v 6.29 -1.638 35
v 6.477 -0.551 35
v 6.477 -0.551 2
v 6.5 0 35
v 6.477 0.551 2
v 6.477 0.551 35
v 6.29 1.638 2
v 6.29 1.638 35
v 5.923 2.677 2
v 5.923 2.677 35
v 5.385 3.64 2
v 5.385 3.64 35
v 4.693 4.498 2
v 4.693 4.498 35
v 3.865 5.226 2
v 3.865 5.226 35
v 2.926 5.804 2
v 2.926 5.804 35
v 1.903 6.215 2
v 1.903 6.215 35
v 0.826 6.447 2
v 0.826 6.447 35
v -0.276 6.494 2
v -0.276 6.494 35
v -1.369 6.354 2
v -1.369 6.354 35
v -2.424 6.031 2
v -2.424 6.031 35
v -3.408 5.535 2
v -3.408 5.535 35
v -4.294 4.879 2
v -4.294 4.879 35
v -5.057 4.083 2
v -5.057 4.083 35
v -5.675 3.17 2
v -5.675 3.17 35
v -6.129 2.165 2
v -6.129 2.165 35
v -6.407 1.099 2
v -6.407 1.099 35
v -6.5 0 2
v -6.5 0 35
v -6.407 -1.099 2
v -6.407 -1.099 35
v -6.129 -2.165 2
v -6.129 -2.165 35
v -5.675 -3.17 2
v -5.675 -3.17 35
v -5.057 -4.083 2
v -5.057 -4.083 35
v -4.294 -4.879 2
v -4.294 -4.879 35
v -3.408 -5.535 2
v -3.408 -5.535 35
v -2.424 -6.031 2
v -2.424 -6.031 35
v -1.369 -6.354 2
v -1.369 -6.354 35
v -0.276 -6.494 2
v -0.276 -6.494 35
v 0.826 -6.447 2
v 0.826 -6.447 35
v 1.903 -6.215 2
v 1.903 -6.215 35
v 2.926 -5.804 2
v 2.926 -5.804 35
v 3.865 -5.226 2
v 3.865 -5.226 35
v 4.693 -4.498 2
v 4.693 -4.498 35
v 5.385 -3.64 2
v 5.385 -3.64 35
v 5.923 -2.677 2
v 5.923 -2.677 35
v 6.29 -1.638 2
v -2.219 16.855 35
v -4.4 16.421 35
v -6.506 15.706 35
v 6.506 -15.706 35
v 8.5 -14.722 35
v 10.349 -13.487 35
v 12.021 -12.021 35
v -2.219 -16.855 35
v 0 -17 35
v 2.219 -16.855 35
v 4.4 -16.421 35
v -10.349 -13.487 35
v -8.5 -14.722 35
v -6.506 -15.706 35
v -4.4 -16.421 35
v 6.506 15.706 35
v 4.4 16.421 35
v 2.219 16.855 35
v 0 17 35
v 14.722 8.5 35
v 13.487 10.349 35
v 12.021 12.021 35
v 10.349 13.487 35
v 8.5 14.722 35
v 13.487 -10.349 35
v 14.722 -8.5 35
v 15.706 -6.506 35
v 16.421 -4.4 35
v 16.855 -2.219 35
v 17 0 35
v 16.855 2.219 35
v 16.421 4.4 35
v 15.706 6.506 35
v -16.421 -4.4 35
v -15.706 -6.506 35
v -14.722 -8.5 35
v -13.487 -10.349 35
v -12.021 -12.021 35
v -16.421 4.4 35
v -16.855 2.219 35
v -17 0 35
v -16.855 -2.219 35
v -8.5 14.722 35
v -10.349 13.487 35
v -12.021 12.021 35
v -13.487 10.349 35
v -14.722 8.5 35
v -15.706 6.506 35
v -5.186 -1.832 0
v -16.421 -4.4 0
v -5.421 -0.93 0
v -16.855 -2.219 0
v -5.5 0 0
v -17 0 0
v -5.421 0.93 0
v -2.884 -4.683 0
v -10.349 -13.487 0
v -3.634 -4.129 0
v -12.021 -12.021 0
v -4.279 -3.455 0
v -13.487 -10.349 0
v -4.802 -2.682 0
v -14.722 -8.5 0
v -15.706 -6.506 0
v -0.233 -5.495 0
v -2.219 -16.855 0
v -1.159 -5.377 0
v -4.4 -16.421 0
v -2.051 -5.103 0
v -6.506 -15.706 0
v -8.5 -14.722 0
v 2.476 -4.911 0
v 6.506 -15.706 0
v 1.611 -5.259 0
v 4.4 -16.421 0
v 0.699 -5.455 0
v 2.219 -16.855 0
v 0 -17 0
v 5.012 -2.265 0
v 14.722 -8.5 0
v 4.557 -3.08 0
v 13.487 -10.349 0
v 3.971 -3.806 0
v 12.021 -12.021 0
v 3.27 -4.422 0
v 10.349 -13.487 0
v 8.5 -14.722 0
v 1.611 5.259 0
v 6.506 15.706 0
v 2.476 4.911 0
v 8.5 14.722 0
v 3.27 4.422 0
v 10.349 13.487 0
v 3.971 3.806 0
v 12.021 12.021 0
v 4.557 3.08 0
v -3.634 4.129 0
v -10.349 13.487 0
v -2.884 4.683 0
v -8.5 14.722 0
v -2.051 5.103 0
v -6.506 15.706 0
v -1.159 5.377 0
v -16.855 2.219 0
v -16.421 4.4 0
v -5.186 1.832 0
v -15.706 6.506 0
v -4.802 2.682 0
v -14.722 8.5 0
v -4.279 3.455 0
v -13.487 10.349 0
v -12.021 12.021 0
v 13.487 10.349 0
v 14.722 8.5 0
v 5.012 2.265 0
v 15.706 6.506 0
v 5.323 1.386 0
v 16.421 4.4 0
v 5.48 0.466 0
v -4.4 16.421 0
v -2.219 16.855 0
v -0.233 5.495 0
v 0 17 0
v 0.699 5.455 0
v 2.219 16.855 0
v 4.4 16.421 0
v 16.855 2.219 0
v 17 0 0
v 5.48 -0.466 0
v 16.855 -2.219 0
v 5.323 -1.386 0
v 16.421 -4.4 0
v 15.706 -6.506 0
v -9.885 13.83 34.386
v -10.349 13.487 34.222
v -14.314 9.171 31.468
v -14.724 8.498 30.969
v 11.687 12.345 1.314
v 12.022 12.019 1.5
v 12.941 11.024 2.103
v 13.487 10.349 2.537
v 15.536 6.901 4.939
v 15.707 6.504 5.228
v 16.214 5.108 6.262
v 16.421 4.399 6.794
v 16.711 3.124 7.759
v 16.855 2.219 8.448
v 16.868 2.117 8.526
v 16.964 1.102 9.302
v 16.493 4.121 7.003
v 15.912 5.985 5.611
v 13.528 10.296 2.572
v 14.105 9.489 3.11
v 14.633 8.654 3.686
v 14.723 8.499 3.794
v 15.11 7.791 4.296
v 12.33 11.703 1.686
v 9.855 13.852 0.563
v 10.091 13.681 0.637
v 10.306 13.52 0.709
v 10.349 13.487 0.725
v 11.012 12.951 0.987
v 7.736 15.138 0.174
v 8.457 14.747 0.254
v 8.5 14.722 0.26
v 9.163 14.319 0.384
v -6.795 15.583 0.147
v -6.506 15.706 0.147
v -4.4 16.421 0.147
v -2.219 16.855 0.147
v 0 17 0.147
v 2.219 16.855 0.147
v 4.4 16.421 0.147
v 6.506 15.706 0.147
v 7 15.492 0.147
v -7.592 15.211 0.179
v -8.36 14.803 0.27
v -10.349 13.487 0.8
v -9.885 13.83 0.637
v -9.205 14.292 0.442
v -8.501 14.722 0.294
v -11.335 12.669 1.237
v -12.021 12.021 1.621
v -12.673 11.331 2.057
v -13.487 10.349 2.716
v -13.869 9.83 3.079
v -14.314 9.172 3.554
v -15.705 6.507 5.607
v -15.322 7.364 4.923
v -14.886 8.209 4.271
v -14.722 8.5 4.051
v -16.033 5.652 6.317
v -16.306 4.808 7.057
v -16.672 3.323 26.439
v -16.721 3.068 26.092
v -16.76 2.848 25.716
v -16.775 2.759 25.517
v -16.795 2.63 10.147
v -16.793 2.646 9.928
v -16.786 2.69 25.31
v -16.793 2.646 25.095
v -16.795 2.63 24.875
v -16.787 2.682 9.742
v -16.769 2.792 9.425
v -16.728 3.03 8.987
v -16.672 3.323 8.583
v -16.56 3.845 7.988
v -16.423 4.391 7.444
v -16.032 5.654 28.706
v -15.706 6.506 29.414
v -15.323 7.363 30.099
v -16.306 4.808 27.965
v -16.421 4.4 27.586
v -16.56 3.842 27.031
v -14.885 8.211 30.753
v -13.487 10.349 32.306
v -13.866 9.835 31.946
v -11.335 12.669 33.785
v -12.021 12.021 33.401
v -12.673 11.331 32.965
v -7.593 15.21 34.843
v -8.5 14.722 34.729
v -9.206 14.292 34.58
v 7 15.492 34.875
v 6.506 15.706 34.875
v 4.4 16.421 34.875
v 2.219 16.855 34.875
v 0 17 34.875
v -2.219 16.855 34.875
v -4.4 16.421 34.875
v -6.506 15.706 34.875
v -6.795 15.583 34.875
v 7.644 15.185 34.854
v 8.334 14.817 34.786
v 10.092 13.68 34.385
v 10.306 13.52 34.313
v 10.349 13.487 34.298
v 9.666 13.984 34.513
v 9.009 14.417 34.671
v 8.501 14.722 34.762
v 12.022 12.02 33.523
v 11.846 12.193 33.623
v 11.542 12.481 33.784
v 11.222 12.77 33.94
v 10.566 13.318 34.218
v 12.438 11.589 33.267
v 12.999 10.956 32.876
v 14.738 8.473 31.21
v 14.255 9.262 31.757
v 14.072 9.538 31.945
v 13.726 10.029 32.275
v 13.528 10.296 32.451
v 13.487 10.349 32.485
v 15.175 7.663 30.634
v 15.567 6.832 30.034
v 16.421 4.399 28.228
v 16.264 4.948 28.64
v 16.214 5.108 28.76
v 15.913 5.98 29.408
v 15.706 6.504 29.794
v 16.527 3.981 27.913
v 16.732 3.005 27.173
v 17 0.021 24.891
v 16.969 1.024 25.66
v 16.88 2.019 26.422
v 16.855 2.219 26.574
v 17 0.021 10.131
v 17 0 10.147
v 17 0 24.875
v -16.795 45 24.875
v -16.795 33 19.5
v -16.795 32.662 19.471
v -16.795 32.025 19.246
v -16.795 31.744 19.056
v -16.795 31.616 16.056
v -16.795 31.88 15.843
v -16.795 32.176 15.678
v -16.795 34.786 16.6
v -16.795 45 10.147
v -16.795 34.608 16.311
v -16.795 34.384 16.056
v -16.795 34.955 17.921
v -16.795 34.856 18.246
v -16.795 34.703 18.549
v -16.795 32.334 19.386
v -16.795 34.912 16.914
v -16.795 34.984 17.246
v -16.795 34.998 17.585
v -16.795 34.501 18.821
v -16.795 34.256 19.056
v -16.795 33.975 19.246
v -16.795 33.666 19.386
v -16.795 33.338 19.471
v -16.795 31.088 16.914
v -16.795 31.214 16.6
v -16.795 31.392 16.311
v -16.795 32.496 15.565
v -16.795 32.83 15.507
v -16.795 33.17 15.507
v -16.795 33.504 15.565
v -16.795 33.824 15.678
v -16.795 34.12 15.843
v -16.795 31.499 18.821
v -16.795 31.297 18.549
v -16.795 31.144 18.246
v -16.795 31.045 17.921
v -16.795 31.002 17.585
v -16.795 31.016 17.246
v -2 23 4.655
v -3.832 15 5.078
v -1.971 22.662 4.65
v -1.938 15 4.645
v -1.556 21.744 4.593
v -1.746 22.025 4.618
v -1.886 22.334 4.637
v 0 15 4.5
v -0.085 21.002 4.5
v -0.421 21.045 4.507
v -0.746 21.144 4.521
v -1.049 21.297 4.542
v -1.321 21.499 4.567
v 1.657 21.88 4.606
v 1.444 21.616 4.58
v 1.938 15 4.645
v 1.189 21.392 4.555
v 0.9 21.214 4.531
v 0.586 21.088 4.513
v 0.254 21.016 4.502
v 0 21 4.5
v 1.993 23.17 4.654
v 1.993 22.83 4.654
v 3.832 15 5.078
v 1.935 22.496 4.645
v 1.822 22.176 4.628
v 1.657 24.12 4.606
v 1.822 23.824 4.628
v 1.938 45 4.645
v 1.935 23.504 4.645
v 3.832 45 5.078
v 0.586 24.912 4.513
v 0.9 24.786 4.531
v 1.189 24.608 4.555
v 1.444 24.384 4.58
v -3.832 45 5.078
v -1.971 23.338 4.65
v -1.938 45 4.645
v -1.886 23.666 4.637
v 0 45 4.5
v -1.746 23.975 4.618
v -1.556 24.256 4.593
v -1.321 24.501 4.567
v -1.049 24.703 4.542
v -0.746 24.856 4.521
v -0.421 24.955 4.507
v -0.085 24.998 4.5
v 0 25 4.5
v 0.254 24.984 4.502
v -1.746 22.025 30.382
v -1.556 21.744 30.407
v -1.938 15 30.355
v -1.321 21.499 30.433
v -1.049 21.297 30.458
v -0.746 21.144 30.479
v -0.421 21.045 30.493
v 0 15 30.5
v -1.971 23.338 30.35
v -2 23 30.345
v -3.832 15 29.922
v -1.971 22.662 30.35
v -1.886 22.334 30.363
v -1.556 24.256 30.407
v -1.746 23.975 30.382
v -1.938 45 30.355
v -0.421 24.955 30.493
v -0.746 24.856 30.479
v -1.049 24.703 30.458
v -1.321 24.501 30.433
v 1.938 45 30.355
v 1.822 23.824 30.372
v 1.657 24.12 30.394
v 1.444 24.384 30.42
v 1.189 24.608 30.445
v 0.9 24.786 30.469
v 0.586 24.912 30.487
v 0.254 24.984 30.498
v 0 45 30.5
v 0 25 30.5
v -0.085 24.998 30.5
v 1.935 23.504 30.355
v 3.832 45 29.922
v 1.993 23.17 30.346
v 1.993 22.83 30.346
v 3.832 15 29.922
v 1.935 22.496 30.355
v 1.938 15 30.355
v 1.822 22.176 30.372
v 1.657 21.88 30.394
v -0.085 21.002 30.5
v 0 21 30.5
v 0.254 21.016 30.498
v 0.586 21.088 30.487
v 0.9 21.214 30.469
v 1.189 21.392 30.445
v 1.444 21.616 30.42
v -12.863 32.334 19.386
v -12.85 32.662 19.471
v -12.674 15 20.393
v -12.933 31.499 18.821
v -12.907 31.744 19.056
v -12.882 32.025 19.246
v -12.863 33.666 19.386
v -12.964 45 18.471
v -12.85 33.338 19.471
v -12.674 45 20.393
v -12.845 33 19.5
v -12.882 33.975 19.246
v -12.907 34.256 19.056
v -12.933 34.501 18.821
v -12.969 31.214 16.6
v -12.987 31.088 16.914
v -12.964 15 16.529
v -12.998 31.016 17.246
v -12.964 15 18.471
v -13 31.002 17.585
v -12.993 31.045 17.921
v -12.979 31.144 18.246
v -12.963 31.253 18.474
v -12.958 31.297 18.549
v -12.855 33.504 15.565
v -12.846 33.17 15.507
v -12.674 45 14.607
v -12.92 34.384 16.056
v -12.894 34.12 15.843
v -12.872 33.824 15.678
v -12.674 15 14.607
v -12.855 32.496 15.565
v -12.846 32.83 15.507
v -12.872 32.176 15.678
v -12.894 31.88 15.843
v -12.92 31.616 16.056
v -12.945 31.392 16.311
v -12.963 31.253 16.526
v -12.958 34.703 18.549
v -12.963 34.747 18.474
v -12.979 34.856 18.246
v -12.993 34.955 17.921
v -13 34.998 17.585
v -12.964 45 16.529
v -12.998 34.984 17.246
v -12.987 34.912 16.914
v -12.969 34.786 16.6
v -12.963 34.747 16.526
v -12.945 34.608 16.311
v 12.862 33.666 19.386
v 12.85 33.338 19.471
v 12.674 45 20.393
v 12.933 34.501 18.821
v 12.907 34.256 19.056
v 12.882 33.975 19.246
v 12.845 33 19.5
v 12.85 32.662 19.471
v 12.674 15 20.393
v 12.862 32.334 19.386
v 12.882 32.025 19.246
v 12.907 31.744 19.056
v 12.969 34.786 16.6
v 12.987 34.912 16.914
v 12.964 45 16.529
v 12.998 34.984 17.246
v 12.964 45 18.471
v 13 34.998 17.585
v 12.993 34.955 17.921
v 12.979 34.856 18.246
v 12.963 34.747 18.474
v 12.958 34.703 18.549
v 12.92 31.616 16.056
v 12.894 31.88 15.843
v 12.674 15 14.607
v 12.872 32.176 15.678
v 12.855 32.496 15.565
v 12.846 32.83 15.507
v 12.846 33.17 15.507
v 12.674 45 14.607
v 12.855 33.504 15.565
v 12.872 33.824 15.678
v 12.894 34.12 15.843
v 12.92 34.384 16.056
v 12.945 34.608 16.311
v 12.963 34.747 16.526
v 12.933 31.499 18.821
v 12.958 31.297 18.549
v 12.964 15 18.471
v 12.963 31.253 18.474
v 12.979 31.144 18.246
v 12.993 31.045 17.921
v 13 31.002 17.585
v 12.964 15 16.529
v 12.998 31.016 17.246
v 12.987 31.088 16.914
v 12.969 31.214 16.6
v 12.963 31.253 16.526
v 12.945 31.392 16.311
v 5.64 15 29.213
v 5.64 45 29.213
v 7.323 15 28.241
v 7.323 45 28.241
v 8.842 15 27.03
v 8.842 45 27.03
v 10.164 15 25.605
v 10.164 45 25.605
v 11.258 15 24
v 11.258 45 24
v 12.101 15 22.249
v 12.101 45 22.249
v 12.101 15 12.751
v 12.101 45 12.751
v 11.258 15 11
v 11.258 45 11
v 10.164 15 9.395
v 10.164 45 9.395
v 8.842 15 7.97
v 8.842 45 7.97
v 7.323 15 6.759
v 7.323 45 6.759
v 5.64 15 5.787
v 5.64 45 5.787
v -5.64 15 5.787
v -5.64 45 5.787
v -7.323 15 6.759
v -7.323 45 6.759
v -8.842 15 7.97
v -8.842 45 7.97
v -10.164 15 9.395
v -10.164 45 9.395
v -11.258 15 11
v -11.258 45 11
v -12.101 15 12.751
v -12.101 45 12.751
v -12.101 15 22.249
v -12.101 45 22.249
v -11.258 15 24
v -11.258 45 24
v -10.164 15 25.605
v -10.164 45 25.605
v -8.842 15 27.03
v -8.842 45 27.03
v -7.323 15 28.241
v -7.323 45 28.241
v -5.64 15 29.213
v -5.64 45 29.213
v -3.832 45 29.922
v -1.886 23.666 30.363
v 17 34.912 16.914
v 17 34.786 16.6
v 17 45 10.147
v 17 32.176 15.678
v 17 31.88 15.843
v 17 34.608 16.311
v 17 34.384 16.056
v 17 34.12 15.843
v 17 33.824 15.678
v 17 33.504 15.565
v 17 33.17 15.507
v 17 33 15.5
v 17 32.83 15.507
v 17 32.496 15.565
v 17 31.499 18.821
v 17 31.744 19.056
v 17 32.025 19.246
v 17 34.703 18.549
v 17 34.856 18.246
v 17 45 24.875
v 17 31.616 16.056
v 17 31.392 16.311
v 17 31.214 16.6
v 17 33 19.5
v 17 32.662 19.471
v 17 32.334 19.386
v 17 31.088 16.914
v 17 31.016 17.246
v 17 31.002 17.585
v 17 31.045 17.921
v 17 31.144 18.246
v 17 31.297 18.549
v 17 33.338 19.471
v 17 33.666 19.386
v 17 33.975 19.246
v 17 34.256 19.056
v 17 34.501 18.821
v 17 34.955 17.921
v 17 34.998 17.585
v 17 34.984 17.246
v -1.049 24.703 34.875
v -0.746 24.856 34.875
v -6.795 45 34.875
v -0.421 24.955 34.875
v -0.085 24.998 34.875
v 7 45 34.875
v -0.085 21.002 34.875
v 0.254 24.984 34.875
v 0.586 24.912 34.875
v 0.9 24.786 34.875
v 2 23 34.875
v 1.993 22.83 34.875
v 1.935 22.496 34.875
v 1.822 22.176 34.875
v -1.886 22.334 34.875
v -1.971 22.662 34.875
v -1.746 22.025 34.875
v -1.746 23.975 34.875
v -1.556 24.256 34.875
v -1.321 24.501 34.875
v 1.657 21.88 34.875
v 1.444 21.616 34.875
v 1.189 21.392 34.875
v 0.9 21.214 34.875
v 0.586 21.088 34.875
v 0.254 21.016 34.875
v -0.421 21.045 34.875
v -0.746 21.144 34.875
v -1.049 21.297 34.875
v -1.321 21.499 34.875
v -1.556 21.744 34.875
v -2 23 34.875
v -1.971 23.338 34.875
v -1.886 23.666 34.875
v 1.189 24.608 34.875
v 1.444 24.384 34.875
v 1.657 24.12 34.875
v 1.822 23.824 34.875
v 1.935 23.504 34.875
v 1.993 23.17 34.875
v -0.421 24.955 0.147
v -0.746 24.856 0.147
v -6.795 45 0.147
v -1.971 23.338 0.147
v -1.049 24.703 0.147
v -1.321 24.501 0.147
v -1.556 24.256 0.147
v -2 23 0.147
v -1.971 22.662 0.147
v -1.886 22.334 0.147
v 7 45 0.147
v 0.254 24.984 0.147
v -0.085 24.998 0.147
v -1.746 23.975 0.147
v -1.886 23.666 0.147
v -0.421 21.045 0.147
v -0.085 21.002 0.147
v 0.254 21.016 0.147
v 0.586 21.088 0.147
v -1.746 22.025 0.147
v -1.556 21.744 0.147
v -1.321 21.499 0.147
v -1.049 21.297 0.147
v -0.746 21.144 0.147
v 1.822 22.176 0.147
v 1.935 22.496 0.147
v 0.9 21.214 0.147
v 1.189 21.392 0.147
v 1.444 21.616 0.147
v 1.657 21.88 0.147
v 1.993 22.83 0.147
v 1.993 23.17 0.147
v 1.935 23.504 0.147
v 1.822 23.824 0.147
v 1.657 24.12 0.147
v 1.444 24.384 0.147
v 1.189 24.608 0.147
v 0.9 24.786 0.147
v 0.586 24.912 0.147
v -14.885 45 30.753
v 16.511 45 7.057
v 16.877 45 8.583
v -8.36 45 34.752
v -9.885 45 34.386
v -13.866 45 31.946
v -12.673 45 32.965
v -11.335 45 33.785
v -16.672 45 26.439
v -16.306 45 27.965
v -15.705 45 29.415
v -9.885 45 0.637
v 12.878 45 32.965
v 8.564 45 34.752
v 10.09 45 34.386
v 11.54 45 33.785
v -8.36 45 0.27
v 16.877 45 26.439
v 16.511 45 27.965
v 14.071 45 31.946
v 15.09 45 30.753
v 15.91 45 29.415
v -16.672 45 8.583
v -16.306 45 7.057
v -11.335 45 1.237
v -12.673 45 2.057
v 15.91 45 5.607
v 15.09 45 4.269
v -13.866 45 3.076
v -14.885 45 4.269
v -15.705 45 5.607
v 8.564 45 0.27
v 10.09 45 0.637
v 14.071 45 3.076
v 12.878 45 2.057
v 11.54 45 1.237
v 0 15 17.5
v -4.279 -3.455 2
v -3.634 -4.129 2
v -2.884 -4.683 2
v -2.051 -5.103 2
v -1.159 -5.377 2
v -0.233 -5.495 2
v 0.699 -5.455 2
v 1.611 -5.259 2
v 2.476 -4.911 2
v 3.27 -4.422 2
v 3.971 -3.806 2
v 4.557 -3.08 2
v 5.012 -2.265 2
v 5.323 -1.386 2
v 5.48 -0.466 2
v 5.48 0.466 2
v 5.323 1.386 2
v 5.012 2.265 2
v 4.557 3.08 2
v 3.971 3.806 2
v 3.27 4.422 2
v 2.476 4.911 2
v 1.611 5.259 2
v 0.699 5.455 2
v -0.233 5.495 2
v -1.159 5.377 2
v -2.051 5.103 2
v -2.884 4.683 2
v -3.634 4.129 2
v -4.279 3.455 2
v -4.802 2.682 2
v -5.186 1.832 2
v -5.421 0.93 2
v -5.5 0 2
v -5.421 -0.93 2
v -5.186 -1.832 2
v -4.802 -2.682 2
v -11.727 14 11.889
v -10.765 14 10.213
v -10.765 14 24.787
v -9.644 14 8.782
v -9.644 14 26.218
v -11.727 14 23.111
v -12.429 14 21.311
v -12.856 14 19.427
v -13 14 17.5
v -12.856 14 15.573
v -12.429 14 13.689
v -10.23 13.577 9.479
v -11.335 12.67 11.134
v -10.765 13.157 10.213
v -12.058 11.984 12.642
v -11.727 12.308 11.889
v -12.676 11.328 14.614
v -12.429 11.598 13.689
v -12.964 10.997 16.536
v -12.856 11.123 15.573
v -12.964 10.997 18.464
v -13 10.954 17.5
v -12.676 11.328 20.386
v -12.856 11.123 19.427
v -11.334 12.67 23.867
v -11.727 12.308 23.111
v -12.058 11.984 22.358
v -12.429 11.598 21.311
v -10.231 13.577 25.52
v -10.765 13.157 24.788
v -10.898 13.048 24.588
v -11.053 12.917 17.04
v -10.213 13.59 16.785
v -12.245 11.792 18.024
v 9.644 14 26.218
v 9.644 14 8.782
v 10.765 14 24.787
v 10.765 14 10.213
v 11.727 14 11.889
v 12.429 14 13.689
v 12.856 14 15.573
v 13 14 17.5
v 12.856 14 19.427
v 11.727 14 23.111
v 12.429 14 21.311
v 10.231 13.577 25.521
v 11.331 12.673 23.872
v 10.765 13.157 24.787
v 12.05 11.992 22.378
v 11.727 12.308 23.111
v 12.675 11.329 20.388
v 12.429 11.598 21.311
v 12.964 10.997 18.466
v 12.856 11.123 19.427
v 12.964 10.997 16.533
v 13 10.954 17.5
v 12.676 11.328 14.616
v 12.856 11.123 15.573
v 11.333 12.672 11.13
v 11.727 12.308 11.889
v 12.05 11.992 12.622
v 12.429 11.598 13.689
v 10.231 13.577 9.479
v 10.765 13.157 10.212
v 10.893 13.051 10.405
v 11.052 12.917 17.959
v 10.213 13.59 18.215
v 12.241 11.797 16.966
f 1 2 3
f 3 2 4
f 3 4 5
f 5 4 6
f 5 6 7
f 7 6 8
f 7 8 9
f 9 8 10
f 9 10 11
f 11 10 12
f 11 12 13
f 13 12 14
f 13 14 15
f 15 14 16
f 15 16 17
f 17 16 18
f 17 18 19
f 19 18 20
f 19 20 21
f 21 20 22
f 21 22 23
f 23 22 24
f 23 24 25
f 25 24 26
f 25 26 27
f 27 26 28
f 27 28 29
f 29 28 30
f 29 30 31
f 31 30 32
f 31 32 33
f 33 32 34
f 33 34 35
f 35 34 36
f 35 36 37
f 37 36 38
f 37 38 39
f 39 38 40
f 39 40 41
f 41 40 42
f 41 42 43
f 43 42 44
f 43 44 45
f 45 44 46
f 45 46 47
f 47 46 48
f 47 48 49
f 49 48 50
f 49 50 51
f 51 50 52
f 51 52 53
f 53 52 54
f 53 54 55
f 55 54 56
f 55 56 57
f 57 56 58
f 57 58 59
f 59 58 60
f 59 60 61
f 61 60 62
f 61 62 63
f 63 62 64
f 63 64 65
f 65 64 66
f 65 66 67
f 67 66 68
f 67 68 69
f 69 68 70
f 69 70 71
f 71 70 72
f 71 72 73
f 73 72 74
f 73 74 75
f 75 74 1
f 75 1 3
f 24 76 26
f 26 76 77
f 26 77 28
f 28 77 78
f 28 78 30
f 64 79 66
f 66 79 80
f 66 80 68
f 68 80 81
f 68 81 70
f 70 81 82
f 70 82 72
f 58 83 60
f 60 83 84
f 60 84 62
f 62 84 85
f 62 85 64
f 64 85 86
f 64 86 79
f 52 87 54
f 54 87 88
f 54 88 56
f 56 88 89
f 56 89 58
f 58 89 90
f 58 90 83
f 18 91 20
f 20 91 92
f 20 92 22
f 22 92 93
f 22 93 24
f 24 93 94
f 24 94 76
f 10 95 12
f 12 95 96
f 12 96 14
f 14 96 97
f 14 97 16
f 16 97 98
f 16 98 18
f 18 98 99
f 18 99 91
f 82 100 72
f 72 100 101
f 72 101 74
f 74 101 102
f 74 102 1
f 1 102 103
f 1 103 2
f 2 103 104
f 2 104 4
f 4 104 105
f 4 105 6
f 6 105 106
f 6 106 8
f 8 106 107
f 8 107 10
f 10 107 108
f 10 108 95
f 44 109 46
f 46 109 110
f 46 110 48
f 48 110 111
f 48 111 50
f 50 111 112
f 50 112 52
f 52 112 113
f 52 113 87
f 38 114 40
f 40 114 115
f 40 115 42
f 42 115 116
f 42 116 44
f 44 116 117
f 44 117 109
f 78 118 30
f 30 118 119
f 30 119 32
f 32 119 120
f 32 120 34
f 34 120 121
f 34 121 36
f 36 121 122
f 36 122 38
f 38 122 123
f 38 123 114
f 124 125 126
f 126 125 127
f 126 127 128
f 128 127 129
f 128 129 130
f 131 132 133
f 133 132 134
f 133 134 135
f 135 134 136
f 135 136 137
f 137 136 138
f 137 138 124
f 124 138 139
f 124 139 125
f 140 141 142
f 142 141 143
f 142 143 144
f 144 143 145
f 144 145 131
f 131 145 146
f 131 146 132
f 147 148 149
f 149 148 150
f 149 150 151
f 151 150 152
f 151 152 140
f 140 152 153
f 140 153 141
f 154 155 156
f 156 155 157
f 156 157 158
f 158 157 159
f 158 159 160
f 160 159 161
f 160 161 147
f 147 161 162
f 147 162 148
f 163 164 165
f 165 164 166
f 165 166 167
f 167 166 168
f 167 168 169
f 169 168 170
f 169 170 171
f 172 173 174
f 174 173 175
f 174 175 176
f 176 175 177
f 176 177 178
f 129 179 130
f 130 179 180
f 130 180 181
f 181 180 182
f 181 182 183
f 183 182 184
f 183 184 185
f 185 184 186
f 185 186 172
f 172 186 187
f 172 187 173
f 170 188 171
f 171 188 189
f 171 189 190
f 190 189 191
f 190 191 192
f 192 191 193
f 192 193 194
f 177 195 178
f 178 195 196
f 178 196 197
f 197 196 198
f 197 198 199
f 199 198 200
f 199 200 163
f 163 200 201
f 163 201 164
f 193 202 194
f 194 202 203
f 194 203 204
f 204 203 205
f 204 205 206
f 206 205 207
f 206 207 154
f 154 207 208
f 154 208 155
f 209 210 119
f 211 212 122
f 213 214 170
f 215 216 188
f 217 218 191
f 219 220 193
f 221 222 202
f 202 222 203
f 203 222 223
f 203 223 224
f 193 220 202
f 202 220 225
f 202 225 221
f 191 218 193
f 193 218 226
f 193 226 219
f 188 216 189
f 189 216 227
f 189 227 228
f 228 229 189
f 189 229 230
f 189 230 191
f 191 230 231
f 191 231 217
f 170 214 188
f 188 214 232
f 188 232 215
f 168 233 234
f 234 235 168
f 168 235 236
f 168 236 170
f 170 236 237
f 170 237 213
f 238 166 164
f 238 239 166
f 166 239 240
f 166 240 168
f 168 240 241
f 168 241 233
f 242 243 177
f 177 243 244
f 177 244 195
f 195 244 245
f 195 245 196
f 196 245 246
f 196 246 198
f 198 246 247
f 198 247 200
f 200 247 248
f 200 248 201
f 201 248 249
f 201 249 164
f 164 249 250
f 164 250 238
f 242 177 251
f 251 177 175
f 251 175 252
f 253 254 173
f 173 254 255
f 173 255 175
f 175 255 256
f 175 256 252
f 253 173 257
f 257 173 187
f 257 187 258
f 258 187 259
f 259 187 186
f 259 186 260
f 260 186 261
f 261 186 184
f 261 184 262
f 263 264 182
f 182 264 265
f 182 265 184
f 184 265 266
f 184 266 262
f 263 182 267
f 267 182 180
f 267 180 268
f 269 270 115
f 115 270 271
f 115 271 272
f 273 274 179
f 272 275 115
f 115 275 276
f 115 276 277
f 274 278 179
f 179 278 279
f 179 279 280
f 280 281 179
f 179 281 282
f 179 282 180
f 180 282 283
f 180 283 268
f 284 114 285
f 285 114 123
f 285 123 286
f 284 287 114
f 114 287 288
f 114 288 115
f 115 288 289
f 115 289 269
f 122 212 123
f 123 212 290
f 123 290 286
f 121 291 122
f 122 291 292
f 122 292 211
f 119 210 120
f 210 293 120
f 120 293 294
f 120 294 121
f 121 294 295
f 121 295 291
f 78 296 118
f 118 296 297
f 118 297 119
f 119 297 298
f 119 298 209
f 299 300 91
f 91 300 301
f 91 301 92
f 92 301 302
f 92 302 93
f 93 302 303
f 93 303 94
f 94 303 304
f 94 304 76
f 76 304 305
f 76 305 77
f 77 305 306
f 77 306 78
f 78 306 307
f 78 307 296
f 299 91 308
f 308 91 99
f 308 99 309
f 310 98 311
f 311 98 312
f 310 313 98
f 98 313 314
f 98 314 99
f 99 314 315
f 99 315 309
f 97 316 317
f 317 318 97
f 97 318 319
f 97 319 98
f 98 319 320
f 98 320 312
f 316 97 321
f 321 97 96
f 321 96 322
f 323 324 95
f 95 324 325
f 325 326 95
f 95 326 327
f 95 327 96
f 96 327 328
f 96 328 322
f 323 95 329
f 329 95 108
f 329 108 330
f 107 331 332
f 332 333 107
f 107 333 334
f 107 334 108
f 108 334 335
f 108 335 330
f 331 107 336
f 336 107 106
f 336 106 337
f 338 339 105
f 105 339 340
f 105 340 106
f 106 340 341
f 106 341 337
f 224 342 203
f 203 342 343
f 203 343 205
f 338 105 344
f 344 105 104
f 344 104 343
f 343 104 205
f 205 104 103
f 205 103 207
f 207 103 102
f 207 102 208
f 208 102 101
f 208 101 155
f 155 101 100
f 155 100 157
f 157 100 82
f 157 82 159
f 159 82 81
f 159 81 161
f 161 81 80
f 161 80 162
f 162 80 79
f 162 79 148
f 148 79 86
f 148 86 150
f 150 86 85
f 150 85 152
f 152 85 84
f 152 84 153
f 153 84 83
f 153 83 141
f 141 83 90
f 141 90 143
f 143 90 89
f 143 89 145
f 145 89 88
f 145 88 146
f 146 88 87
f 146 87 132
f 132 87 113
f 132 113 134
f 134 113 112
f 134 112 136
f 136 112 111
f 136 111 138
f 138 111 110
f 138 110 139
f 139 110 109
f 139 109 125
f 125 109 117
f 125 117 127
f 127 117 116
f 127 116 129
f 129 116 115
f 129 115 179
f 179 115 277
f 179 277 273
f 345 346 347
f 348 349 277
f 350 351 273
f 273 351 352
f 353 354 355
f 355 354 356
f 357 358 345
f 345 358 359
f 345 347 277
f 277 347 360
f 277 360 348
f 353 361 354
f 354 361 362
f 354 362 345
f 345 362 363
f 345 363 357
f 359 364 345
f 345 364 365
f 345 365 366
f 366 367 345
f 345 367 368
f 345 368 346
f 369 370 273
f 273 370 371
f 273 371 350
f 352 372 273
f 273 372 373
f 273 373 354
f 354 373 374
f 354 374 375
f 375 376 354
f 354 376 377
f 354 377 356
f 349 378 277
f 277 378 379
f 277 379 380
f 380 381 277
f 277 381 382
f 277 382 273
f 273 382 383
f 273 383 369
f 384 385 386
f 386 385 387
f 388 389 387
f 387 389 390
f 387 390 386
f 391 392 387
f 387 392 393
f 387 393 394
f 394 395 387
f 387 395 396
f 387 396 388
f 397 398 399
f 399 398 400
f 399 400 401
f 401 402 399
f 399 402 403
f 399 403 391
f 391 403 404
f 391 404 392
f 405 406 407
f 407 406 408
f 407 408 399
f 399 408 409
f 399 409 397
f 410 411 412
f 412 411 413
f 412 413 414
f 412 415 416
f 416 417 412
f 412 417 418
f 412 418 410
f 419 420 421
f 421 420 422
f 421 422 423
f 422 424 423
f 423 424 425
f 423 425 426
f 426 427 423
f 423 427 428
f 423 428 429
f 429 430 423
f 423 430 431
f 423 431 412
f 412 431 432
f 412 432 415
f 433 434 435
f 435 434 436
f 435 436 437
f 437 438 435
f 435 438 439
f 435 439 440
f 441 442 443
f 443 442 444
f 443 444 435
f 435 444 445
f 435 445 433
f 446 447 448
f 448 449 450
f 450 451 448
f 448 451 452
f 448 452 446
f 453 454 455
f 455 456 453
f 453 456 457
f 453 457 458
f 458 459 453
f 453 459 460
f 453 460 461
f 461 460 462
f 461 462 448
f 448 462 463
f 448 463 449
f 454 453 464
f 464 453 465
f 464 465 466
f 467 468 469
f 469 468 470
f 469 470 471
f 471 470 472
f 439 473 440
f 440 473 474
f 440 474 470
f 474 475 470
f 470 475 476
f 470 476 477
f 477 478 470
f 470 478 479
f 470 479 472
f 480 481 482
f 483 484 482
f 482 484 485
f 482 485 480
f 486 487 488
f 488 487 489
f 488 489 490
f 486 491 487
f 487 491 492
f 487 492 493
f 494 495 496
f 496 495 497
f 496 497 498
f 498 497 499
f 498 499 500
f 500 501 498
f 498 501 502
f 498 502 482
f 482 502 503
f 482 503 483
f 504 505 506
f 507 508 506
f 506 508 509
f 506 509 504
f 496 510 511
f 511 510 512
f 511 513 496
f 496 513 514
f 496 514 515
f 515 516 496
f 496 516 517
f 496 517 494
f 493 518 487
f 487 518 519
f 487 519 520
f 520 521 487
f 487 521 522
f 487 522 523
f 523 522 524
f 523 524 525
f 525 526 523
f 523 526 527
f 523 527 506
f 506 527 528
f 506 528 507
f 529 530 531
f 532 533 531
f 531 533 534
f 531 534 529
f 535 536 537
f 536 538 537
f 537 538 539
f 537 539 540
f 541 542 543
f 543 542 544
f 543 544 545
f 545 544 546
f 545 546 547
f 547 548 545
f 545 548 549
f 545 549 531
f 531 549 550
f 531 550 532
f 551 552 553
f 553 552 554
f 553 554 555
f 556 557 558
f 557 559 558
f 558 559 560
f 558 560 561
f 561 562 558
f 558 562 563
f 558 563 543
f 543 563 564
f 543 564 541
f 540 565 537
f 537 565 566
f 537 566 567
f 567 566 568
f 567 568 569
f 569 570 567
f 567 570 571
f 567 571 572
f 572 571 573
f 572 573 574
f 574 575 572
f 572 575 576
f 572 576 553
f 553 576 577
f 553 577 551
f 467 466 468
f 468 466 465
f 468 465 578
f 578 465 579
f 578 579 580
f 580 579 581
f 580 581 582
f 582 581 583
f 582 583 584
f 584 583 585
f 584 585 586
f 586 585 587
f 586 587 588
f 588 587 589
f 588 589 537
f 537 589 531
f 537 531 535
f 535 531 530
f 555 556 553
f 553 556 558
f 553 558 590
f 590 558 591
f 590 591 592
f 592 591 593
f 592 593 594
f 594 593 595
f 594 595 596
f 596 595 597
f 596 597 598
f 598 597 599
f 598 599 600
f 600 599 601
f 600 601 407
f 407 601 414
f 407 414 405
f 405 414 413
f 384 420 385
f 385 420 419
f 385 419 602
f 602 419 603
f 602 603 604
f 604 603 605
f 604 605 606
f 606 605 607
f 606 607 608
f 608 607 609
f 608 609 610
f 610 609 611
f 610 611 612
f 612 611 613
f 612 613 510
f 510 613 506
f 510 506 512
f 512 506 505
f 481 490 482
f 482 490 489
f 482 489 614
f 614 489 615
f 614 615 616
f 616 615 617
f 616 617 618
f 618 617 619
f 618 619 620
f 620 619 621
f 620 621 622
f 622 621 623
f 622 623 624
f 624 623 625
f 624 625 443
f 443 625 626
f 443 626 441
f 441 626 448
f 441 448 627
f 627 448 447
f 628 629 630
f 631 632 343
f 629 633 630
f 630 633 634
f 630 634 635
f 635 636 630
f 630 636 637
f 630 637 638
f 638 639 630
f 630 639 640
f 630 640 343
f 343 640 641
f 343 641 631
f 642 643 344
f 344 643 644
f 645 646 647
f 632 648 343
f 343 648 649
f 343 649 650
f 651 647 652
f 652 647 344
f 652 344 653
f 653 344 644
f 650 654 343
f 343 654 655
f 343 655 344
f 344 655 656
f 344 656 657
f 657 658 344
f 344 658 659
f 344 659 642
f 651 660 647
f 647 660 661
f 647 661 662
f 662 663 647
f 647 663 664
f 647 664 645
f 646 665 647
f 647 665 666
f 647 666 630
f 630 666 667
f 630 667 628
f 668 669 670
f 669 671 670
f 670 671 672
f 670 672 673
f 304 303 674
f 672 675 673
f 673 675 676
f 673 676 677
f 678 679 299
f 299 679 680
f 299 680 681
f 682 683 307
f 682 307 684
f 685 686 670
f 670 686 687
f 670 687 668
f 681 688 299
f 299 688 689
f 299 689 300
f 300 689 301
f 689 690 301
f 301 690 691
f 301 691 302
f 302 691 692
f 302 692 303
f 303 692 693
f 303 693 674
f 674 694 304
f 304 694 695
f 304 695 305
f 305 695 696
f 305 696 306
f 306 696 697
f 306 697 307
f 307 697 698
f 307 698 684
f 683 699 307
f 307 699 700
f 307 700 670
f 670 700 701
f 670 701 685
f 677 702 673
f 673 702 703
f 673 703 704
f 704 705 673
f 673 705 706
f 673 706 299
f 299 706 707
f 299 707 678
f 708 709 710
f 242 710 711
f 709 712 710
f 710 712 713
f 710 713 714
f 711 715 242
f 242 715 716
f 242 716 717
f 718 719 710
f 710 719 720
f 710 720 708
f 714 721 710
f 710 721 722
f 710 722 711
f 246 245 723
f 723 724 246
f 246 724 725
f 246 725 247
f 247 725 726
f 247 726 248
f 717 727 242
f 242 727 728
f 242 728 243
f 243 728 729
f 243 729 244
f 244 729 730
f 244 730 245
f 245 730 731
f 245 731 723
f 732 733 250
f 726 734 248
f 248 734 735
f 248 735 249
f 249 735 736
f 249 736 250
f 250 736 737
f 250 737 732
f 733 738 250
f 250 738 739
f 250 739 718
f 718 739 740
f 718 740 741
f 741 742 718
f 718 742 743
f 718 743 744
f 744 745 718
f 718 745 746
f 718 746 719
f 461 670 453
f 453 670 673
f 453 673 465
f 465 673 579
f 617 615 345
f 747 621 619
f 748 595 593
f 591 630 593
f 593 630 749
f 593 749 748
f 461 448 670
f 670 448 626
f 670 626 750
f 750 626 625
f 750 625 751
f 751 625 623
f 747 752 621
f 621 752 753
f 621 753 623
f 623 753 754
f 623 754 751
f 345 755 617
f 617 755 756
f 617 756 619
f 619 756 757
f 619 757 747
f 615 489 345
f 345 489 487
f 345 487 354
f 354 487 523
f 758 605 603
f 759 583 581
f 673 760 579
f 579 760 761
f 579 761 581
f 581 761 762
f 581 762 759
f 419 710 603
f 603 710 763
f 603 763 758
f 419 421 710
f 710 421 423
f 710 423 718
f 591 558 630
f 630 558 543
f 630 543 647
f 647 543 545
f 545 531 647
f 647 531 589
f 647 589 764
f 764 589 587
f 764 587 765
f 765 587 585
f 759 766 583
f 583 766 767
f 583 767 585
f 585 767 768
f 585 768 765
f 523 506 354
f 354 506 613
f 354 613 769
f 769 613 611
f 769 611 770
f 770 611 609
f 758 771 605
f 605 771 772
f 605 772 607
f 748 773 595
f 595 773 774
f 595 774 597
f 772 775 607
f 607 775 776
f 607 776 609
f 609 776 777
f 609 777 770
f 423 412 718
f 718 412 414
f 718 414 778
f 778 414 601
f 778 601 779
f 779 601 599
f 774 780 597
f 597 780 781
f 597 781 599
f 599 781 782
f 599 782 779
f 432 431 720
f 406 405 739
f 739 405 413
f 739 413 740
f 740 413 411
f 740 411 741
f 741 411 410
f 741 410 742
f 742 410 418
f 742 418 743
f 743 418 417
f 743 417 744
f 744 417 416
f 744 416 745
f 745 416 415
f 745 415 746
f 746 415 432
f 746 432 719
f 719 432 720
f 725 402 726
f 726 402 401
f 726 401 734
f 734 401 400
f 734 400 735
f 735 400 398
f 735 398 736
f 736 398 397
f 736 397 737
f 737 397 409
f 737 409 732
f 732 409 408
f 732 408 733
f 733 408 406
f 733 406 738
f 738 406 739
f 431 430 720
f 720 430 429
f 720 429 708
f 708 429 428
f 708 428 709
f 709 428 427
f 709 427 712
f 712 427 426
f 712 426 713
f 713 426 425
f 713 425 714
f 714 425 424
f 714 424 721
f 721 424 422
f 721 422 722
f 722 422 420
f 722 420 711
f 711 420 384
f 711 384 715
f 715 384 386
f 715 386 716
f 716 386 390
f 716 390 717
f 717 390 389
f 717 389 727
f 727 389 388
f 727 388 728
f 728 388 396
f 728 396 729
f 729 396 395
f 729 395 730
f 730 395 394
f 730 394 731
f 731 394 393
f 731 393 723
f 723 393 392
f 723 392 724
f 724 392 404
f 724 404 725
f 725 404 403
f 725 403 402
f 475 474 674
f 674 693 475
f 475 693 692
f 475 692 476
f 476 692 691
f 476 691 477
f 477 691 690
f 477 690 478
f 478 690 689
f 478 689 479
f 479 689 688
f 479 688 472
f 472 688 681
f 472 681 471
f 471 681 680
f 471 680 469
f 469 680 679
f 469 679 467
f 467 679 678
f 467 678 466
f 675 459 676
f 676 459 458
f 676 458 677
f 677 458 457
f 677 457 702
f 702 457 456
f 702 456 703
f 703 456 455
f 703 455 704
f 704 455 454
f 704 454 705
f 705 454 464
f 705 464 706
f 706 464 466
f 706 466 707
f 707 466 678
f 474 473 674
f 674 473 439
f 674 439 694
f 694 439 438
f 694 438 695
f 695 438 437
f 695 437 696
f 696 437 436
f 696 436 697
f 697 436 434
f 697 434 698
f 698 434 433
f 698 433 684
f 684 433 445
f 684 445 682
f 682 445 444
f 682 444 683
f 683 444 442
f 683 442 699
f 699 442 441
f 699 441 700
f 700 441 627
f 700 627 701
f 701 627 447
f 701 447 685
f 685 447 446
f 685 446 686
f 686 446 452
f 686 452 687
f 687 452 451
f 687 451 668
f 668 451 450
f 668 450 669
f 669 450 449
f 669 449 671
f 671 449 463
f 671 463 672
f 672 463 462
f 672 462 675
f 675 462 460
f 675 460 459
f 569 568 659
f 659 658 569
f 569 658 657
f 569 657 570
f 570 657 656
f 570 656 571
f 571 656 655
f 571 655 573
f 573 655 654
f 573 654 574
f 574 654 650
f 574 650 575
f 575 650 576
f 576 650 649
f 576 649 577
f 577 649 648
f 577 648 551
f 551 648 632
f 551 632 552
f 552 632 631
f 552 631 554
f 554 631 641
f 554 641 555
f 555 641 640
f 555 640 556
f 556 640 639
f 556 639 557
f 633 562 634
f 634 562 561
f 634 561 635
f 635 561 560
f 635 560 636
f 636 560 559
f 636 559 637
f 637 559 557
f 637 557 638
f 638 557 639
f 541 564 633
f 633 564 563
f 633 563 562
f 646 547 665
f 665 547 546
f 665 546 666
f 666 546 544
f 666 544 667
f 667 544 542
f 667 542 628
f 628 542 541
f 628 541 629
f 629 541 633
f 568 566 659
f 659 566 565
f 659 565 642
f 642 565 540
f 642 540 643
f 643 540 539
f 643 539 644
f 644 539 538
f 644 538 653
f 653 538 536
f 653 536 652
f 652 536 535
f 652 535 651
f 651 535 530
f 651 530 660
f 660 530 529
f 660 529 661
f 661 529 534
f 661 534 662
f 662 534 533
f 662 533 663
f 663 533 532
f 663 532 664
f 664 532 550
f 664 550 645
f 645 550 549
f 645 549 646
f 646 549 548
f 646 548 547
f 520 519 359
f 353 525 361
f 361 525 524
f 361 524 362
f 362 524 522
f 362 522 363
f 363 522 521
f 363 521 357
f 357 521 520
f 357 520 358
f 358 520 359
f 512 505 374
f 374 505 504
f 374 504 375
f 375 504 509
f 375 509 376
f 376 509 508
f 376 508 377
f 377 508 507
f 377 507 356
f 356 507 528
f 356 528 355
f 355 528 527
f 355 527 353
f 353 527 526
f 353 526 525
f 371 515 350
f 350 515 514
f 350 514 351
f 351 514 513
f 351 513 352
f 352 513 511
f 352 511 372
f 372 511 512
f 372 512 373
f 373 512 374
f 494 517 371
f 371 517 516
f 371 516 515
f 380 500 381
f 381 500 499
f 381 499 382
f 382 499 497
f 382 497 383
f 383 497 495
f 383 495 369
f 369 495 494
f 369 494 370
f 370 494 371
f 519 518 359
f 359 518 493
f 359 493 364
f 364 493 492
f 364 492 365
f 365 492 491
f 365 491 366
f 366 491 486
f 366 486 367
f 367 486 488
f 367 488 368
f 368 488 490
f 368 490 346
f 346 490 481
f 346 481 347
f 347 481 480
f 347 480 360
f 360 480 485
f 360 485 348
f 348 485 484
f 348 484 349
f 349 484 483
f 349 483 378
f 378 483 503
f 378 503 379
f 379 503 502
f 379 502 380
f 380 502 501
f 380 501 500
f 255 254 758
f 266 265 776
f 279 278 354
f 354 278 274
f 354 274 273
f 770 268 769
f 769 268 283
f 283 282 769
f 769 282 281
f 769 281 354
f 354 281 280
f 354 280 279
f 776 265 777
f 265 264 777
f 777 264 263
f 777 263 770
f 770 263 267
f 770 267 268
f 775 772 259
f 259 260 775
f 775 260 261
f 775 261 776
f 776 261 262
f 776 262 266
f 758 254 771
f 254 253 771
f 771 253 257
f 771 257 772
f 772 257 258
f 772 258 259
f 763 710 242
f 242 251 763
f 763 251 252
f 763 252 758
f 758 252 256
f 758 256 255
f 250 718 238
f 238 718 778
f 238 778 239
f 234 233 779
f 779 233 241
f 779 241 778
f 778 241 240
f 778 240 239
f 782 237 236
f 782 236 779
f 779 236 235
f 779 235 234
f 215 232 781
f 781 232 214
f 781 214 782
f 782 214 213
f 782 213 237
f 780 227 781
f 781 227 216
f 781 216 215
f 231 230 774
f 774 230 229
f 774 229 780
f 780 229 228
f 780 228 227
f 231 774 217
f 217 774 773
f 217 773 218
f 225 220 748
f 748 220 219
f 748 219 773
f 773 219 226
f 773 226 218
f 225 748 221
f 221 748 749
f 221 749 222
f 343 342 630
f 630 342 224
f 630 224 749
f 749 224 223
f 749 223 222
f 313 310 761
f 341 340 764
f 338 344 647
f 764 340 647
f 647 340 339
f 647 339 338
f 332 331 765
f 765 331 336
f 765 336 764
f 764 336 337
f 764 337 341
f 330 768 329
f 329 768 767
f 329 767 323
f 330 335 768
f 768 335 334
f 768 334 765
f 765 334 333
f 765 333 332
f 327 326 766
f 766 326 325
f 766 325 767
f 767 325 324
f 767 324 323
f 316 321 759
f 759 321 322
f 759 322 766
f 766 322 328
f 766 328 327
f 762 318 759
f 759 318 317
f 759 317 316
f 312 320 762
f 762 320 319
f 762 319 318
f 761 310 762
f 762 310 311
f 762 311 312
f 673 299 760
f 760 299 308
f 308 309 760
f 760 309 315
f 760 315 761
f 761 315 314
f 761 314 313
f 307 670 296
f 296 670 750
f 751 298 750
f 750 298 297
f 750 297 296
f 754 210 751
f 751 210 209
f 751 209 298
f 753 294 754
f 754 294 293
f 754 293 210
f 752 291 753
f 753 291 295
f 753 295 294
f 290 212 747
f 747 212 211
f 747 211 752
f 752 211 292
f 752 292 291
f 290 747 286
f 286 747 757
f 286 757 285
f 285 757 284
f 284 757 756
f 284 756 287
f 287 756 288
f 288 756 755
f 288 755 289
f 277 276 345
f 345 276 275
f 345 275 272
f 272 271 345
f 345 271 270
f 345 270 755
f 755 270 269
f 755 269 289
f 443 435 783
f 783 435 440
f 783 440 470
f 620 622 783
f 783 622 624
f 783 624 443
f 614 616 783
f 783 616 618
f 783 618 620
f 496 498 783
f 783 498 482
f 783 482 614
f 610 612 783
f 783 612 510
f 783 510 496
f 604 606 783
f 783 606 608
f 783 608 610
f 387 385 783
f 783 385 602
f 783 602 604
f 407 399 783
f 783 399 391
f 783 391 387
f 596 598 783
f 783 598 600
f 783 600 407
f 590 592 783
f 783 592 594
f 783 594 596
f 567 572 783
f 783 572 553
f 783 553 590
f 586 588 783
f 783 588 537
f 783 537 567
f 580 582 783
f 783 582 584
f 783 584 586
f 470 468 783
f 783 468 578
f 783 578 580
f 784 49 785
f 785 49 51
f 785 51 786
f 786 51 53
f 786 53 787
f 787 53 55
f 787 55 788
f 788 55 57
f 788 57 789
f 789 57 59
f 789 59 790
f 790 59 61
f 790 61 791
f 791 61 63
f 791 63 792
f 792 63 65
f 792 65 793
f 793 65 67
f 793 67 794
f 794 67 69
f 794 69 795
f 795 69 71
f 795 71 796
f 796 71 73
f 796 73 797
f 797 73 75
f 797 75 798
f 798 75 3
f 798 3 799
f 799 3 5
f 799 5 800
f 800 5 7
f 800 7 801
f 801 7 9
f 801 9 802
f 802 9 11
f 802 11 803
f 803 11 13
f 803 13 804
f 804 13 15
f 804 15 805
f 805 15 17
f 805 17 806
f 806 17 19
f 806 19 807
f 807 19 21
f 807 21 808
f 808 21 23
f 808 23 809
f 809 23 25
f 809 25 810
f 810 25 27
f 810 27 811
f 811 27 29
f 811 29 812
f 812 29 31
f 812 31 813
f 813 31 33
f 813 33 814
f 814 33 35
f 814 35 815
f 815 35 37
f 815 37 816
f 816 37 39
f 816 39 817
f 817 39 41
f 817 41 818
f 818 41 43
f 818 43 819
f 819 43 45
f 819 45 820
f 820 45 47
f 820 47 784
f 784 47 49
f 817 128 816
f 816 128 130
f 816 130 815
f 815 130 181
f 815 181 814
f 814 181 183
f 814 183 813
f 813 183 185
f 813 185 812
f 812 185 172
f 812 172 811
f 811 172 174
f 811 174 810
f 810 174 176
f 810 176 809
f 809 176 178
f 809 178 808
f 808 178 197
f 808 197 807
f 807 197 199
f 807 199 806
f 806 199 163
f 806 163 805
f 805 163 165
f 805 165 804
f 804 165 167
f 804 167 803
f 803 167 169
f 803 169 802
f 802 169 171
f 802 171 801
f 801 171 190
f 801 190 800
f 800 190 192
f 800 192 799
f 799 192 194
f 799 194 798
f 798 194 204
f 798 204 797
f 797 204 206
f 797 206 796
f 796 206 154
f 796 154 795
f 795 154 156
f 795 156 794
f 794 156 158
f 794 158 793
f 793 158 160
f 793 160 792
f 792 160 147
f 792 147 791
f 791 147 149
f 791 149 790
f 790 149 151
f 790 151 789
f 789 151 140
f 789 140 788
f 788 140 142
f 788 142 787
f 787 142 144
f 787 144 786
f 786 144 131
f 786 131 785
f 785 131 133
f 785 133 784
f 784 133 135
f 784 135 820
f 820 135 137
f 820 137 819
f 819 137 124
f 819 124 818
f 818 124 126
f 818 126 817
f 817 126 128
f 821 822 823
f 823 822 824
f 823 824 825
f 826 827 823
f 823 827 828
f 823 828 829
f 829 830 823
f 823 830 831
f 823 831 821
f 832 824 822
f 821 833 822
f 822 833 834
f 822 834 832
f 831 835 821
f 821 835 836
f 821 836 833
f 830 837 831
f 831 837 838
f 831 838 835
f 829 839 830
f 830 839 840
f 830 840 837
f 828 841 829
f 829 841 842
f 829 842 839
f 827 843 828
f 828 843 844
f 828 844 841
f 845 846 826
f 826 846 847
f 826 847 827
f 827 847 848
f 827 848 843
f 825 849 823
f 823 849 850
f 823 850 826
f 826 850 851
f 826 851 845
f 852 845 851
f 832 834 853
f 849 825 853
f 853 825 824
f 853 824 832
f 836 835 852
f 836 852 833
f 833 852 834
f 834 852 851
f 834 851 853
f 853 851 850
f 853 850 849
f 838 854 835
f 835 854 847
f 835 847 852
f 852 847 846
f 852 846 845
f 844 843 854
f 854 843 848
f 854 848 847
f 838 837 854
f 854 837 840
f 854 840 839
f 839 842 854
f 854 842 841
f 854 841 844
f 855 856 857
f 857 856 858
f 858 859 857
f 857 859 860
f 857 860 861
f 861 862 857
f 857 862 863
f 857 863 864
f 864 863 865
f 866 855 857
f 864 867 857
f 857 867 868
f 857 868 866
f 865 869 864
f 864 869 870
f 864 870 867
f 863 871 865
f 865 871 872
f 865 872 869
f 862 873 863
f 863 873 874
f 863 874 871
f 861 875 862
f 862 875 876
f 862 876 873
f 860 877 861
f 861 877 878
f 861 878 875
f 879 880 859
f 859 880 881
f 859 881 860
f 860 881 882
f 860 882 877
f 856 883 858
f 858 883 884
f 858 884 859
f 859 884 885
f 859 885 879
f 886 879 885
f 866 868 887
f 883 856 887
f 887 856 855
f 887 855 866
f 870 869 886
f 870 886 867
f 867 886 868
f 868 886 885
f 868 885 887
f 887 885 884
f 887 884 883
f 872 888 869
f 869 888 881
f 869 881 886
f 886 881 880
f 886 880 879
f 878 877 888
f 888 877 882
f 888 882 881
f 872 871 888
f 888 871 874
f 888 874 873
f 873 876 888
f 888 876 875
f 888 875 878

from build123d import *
from build123d.topology import SkipClean

# Parameters (mm, degrees)
SKETCH_1_R           = 17
SKETCH_1_R_2         = 6.5
EXTRUDE_2_DEPTH      = 35
SKETCH_3_W           = 33.795275063
SKETCH_3_H           = 34.72803434
SKETCH_3_R           = 13
EXTRUDE_7_DEPTH      = 45
SKETCH_4_R           = 6.5
CUT_EXTRUDE_1_DEPTH  = 60.489495005
SKETCH_12_R          = 2
CUT_EXTRUDE_11_DEPTH = 45
SKETCH_15_R          = 2
CUT_EXTRUDE_12_DEPTH = 45
FILLET_4_R           = 10
SKETCH_20_R          = 13
CUT_EXTRUDE_18_DEPTH = 31
EXTRUDE_START        = 1
SKETCH_25_R          = 13
EXTRUDE_10_DEPTH     = 1
SKETCH_26_R          = 6.5
SKETCH_26_R_2        = 5.5
EXTRUDE_11_DEPTH     = 2


with BuildPart() as part:
    # Эскиз1 → Бобышка-Вытянуть2 (new body)
    with BuildSketch(Plane.XY):
        Circle(SKETCH_1_R)
        Circle(SKETCH_1_R_2, mode=Mode.SUBTRACT)
    extrude(amount=EXTRUDE_2_DEPTH)

    # Эскиз3 → Бобышка-Вытянуть7 (add)
    with BuildSketch(Plane(origin=(0, 45, 0), x_dir=(1, 0, 0), z_dir=(0, 1, 0))):
        with Locations((0.102362468, -17.511098906)):
            Rectangle(SKETCH_3_W, SKETCH_3_H)
        with Locations(Location((0, -17.5, 0), (0, 0, 270))):
            Circle(SKETCH_3_R, mode=Mode.SUBTRACT)
    extrude(amount=-EXTRUDE_7_DEPTH)

    # Эскиз4 → Вырез-Вытянуть1 (cut, through all)
    with BuildSketch(Plane(origin=(0, 0, 0), x_dir=(-1, 0, 0), z_dir=(0, 0, -1))):
        with Locations(Location((0, 0, 0), (0, 0, 180))):
            Circle(SKETCH_4_R)
    extrude(amount=-CUT_EXTRUDE_1_DEPTH, mode=Mode.SUBTRACT)

    # Эскиз12 → Вырез-Вытянуть11 (cut)
    with BuildSketch(Plane(origin=(0, 0, 0), x_dir=(-1, 0, 0), z_dir=(0, 0, -1))):
        with Locations((0, 23)):
            Circle(SKETCH_12_R)
    extrude(amount=-CUT_EXTRUDE_11_DEPTH, mode=Mode.SUBTRACT)

    # Эскиз15 → Вырез-Вытянуть12 (cut)
    with BuildSketch(Plane.ZY.offset(16.795275063)):
        with Locations((17.5, 33)):
            Circle(SKETCH_15_R)
    extrude(amount=-CUT_EXTRUDE_12_DEPTH, mode=Mode.SUBTRACT)

    # Скругление4
    # the kernel refuses this fillet: 10 mm, written as the material it takes off along each edge
    with BuildSketch(Plane(origin=(-16.795275063, 70, 34.875116076), x_dir=(1, 0, 0), z_dir=(0, -1, 0))) as fillet_4_piece_1_section:
        with BuildLine():
            CenterArc((FILLET_4_R, -FILLET_4_R), FILLET_4_R, 90, 90)
            Line((0, -FILLET_4_R), (0, 0))
            Line((0, 0), (FILLET_4_R, 0))
        make_face()
    fillet_4_piece_1 = extrude(amount=92.369651061, mode=Mode.PRIVATE)
    fillet_4_piece_1 = fillet_4_piece_1 - Plane(origin=(0, 0, 32.54483178), x_dir=(1, 0, 0), z_dir=(0, 0, -1)) * Cylinder(17, 225, mode=Mode.PRIVATE)
    add(fillet_4_piece_1, mode=Mode.SUBTRACT)
    with BuildSketch(Plane(origin=(17, 70, 0.147081736), x_dir=(0, 0, 1), z_dir=(0, -1, 0))) as fillet_4_piece_2_section:
        with BuildLine():
            CenterArc((FILLET_4_R, FILLET_4_R), FILLET_4_R, 180, 90)
            Line((0, FILLET_4_R), (0, 0))
            Line((0, 0), (FILLET_4_R, 0))
        make_face()
    fillet_4_piece_2 = extrude(amount=95, mode=Mode.PRIVATE)
    fillet_4_piece_2 = fillet_4_piece_2 - Plane(origin=(0, 0, 2.486350956), x_dir=(1, 0, 0), z_dir=(0, 0, -1)) * Cylinder(17, 230, mode=Mode.PRIVATE)
    add(fillet_4_piece_2, mode=Mode.SUBTRACT)
    with BuildSketch(Plane(origin=(17, 70, 34.875116076), x_dir=(0, 0, -1), z_dir=(0, -1, 0))) as fillet_4_piece_3_section:
        with BuildLine():
            CenterArc((FILLET_4_R, -FILLET_4_R), FILLET_4_R, 90, 90)
            Line((0, -FILLET_4_R), (0, 0))
            Line((0, 0), (FILLET_4_R, 0))
        make_face()
    fillet_4_piece_3 = extrude(amount=95, mode=Mode.PRIVATE)
    fillet_4_piece_3 = fillet_4_piece_3 - Plane(origin=(0, 0, 32.535846855), x_dir=(1, 0, 0), z_dir=(0, 0, -1)) * Cylinder(17, 230, mode=Mode.PRIVATE)
    add(fillet_4_piece_3, mode=Mode.SUBTRACT)
    with BuildSketch(Plane(origin=(-16.795275063, 70, 0.147081736), x_dir=(0, 0, 1), z_dir=(0, -1, 0))) as fillet_4_piece_4_section:
        with BuildLine():
            CenterArc((FILLET_4_R, -FILLET_4_R), FILLET_4_R, 90, 90)
            Line((0, -FILLET_4_R), (0, 0))
            Line((0, 0), (FILLET_4_R, 0))
        make_face()
    fillet_4_piece_4 = extrude(amount=92.369651061, mode=Mode.PRIVATE)
    fillet_4_piece_4 = fillet_4_piece_4 - Plane(origin=(0, 0, 2.477367304), x_dir=(1, 0, 0), z_dir=(0, 0, -1)) * Cylinder(17, 225, mode=Mode.PRIVATE)
    add(fillet_4_piece_4, mode=Mode.SUBTRACT)

    # Эскиз20 → Вырез-Вытянуть18 (cut)
    with SkipClean():  # the faces are left unmerged after this step: merging them gives an invalid solid
        with BuildSketch(Plane(origin=(0, 45, 0), x_dir=(1, 0, 0), z_dir=(0, 1, 0))):
            with Locations(Location((0, -17.5, 0), (0, 0, 270))):
                Circle(SKETCH_20_R)
        extrude(amount=-CUT_EXTRUDE_18_DEPTH, mode=Mode.SUBTRACT)

    # Эскиз25 → Бобышка-Вытянуть10 (add)
    with BuildSketch(Plane(origin=(0, 14, 0), x_dir=(1, 0, 0), z_dir=(0, 1, 0)).offset(EXTRUDE_START)):
        with Locations(Location((0, -17.5, 0), (0, 0, 270))):
            Circle(SKETCH_25_R)
    extrude(amount=-EXTRUDE_10_DEPTH)

    # Эскиз26 → Бобышка-Вытянуть11 (add)
    with BuildSketch(Plane(origin=(0, 0, 0), x_dir=(-1, 0, 0), z_dir=(0, 0, -1))):
        Circle(SKETCH_26_R)
        Circle(SKETCH_26_R_2, mode=Mode.SUBTRACT)
    extrude(amount=-EXTRUDE_11_DEPTH)


solid = part.part
